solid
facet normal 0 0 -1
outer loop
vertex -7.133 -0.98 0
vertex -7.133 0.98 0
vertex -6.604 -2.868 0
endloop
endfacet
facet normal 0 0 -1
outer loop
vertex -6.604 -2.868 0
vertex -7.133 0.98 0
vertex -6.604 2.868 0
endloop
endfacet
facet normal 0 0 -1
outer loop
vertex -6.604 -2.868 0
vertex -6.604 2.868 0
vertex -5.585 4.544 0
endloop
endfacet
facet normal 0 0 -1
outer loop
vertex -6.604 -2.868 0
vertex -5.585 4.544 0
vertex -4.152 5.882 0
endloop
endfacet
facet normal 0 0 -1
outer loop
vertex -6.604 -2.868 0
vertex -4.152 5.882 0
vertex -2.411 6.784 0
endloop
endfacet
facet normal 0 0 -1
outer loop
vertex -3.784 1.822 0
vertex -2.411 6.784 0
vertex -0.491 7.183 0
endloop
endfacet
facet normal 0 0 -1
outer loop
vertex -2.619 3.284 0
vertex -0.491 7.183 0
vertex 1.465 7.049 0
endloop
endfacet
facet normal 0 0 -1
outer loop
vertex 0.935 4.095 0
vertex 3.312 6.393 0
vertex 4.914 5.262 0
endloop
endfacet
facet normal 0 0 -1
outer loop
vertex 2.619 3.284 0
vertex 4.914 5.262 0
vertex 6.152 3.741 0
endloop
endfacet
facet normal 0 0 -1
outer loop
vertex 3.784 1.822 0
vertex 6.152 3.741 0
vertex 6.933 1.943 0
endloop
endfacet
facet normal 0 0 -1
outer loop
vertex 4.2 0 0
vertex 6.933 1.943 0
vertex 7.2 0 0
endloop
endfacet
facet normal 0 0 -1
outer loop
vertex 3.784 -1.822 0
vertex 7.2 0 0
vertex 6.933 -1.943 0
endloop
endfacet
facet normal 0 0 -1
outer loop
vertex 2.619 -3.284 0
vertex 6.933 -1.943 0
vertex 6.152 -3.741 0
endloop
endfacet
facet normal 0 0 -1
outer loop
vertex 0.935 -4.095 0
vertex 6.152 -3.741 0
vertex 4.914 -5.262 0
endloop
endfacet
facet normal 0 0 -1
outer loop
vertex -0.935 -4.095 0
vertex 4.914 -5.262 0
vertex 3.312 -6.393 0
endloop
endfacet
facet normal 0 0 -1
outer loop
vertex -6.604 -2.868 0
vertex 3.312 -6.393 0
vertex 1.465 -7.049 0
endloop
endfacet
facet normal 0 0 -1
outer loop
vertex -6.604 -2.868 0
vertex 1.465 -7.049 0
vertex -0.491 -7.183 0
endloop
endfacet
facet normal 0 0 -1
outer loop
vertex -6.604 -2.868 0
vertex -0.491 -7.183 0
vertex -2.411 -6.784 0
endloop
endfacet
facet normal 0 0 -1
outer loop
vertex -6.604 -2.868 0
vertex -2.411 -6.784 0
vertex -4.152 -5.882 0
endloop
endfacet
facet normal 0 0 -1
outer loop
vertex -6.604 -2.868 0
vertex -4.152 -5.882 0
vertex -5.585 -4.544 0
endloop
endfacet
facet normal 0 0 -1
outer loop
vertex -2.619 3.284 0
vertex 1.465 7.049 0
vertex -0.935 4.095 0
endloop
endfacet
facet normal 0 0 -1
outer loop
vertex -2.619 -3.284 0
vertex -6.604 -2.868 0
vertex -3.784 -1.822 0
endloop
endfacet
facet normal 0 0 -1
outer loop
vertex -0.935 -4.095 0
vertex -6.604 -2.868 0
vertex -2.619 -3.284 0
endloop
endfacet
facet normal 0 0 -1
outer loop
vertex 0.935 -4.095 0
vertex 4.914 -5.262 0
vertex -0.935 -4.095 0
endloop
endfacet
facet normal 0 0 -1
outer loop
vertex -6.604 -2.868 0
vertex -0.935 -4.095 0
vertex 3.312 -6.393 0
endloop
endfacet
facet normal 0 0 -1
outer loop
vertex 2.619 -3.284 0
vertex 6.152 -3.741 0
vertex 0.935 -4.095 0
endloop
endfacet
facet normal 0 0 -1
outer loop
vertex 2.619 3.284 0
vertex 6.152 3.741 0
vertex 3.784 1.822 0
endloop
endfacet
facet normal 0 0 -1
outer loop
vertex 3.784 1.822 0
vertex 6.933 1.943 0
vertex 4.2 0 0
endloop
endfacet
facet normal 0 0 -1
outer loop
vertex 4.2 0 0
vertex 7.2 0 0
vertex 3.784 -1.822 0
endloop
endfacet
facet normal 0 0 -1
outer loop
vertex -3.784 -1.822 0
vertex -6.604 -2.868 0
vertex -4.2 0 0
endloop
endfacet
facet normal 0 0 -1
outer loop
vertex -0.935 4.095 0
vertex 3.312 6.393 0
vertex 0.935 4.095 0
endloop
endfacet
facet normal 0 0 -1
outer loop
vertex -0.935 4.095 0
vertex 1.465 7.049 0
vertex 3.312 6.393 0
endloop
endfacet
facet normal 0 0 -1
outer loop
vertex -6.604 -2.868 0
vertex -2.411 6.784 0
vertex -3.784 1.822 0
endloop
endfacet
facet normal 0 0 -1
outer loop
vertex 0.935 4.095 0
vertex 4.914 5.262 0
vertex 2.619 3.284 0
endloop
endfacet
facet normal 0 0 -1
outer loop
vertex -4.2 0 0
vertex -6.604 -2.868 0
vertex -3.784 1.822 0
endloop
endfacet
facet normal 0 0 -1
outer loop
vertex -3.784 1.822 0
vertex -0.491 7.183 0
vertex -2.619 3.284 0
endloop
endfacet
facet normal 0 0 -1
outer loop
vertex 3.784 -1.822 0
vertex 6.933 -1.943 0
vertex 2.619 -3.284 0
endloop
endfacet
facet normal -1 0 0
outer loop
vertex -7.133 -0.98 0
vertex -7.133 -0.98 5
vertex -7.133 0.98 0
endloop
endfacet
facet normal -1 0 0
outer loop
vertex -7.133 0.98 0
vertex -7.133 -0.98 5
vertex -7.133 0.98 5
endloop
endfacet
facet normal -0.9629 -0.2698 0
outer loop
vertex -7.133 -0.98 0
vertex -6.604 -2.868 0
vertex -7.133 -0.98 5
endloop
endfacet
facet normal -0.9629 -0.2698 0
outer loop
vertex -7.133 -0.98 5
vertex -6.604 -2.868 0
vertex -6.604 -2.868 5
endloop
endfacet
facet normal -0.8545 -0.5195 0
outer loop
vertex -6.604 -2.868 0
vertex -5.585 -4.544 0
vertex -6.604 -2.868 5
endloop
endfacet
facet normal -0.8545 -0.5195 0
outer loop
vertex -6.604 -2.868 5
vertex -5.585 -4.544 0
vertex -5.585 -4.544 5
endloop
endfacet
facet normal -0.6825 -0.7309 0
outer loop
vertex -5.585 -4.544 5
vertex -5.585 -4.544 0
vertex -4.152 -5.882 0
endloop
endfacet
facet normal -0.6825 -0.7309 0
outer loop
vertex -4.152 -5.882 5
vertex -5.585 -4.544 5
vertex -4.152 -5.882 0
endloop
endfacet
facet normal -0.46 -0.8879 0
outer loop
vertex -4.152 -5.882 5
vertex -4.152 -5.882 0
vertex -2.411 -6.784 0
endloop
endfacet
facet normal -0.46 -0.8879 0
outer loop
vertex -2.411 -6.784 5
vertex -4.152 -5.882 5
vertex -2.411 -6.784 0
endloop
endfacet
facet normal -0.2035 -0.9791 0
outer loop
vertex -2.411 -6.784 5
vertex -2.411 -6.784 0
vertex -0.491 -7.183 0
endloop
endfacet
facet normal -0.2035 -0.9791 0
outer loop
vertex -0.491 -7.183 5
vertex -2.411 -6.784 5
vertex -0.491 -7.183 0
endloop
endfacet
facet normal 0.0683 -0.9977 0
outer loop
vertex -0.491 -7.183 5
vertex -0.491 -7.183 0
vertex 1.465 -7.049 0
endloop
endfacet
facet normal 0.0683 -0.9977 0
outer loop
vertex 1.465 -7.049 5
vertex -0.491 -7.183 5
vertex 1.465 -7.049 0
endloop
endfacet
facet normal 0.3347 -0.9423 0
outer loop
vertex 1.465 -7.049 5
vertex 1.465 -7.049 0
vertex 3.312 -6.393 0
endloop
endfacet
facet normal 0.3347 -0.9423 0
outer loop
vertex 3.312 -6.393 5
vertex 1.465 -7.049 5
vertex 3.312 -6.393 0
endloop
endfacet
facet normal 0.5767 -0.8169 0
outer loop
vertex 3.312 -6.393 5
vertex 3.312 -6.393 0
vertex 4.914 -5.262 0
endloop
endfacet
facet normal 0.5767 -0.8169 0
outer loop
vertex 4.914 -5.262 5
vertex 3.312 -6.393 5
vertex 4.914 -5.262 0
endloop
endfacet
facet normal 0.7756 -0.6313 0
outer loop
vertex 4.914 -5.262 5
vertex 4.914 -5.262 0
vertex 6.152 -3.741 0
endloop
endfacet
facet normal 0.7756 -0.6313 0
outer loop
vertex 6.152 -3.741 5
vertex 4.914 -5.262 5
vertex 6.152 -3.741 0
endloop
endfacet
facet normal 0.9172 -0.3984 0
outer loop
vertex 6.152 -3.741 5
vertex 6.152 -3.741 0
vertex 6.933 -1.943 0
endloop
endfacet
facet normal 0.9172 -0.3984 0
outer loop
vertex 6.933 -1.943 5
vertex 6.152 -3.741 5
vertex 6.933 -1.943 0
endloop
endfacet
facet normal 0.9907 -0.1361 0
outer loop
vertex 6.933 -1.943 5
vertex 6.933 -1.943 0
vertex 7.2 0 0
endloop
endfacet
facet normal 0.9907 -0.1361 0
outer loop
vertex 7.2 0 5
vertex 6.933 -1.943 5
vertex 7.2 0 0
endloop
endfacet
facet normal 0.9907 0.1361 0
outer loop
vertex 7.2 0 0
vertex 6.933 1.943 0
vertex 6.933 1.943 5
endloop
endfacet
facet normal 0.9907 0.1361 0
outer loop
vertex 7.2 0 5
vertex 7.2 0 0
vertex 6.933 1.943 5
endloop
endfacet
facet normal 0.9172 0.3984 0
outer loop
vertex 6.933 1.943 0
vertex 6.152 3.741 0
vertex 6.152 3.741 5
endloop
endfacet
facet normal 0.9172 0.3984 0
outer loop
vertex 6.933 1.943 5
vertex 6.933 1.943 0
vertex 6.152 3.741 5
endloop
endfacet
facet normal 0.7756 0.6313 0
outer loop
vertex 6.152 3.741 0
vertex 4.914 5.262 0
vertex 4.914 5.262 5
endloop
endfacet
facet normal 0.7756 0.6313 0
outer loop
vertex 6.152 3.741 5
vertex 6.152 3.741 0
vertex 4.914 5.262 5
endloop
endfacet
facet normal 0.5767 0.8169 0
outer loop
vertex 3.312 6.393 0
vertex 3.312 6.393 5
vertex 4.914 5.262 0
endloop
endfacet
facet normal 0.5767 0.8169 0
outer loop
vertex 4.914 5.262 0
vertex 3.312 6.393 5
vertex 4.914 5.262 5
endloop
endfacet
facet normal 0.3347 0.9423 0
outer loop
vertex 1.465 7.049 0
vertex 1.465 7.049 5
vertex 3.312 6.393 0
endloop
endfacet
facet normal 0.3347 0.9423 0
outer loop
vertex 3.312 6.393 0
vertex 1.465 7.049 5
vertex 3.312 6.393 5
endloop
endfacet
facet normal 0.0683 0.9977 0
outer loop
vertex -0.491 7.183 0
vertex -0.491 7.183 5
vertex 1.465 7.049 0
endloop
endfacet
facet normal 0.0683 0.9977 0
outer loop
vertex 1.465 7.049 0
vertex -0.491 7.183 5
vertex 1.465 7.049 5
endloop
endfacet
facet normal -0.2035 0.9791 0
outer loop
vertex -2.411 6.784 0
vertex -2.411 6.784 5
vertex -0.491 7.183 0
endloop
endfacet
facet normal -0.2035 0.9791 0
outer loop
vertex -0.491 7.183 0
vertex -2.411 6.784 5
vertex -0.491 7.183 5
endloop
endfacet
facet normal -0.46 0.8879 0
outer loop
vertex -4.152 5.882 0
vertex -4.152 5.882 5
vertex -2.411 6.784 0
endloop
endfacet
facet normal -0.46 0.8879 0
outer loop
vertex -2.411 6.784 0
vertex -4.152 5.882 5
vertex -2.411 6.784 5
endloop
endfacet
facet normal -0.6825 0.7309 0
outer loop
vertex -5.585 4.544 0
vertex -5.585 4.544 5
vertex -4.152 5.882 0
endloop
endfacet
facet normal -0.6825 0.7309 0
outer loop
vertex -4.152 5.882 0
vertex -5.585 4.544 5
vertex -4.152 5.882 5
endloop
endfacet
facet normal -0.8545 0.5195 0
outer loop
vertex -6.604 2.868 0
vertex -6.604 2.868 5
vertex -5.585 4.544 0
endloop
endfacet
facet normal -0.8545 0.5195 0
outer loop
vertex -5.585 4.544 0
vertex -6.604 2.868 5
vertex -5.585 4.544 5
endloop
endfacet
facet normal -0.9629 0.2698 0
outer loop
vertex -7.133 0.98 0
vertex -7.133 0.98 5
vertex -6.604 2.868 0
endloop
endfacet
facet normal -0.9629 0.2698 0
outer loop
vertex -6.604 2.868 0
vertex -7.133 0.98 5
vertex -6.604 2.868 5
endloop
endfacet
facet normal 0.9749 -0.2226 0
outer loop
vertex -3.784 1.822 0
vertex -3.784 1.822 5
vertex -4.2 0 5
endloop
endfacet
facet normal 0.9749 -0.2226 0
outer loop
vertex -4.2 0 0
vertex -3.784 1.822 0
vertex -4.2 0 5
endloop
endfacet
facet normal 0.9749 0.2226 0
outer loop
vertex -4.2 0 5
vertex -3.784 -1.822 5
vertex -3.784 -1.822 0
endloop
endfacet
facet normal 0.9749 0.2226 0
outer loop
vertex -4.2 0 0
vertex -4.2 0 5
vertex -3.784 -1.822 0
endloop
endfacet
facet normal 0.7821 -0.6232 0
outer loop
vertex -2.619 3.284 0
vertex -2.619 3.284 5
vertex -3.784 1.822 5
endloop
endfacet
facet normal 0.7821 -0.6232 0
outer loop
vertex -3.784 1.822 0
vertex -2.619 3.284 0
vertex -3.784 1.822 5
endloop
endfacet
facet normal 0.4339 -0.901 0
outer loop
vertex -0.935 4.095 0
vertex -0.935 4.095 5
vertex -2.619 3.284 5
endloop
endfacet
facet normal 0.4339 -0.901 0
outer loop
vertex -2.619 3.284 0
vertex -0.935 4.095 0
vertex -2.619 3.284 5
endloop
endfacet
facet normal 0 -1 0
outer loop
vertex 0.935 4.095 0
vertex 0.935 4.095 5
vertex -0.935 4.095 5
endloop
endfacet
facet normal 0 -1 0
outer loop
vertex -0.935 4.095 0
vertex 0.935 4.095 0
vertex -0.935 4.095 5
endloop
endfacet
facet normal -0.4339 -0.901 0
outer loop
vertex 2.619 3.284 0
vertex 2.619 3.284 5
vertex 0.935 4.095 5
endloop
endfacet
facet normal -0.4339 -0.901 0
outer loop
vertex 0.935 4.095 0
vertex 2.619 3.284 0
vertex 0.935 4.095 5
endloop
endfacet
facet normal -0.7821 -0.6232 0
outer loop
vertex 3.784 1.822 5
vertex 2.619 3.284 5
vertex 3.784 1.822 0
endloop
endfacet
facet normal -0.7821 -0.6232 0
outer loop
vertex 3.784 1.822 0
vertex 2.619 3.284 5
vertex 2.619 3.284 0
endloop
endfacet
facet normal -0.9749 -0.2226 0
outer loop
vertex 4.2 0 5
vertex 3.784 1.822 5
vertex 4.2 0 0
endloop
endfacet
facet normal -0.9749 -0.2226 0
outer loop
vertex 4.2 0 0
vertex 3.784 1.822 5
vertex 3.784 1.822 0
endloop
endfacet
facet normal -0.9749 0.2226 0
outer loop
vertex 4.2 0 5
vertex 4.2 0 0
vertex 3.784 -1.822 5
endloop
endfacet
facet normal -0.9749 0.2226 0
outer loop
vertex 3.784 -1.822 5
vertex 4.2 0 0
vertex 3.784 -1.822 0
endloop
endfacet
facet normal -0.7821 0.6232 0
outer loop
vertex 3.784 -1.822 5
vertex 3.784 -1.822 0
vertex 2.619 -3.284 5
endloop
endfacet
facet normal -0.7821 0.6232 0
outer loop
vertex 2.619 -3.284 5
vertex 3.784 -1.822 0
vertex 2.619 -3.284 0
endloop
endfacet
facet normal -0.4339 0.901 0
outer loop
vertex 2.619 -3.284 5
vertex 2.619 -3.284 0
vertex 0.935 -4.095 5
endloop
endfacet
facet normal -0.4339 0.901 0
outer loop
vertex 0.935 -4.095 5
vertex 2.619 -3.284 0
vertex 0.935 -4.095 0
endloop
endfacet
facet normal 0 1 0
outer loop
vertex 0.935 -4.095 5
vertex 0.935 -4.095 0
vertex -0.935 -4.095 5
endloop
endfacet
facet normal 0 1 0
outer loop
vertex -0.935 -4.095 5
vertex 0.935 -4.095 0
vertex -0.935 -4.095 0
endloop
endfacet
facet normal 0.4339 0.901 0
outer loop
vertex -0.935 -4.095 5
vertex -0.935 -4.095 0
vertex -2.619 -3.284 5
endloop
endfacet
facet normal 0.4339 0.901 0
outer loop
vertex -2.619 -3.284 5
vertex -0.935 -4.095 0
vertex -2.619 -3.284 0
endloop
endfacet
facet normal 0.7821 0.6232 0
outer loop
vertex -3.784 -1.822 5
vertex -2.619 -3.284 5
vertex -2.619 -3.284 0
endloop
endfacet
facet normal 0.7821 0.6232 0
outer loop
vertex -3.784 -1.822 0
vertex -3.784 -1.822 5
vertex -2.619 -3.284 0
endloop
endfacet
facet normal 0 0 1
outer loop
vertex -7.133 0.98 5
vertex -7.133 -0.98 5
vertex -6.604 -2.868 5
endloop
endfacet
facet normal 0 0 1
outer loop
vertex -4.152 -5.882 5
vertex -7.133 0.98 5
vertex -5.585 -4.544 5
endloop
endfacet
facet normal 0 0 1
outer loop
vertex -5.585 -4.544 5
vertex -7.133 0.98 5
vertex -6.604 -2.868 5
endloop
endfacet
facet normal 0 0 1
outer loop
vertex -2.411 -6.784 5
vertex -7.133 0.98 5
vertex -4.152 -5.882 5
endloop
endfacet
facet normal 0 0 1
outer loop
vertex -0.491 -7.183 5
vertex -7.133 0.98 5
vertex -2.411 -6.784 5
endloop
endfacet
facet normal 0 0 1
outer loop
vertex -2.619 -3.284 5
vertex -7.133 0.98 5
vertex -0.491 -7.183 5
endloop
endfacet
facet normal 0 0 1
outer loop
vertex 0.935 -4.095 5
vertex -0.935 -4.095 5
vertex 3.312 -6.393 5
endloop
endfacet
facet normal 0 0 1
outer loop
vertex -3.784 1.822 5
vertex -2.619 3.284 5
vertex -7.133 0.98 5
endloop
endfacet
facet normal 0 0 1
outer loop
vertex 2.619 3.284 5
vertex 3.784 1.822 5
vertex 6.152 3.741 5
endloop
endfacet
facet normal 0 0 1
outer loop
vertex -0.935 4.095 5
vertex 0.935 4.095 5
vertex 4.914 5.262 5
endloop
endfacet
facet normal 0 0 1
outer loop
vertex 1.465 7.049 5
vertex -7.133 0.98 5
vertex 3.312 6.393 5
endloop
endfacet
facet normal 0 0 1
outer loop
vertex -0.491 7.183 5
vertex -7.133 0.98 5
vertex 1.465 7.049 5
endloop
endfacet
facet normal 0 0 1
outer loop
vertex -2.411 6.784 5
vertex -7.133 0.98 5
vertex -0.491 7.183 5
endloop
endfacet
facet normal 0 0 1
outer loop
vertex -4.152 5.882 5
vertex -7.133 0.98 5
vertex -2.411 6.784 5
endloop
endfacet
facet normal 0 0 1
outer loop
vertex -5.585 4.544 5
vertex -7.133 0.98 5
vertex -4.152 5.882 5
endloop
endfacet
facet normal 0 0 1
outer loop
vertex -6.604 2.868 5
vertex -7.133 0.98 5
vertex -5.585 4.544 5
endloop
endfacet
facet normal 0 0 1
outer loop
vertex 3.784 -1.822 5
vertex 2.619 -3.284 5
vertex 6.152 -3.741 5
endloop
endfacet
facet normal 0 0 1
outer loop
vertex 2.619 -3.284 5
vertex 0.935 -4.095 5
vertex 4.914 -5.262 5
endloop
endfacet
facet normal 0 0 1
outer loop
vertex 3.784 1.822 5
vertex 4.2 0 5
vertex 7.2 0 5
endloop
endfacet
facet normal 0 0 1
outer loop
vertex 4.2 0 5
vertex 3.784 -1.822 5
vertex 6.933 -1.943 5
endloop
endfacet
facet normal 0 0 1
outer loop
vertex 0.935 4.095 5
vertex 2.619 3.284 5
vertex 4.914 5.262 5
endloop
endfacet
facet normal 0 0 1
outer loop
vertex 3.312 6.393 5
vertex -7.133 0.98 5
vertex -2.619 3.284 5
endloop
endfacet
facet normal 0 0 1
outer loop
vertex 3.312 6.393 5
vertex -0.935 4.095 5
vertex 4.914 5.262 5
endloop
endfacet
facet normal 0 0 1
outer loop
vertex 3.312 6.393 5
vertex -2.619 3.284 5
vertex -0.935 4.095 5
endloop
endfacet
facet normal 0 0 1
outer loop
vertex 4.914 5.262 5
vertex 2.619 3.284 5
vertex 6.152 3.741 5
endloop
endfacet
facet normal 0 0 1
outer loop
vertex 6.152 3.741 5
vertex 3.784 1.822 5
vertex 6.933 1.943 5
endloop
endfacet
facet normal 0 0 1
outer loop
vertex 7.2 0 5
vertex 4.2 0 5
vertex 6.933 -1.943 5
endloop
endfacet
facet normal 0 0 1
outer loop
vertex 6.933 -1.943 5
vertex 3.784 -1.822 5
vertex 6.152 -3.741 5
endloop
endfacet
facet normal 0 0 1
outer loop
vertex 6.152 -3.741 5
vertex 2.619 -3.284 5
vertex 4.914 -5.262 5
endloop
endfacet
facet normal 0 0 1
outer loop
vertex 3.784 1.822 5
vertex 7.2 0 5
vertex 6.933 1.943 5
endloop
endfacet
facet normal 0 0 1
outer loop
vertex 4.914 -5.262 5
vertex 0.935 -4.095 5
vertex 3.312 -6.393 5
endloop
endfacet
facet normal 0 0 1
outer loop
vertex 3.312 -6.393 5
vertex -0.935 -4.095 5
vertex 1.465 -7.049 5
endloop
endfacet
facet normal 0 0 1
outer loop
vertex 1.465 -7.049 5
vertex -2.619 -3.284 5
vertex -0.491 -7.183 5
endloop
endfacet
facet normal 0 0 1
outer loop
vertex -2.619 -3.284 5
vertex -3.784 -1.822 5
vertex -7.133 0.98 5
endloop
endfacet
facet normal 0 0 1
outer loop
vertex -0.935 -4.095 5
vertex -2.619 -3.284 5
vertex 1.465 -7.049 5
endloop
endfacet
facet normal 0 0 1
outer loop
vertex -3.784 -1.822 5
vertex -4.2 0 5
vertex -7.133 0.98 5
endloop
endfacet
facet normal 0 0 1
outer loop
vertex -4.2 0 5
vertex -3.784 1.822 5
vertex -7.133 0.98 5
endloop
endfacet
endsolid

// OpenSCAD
height = 5;
bore_radius = 4.2;
outer_radius = bore_radius + 3;
tolerance = 0.01;

spacer();

module spacer(h = height, or = outer_radius, br = bore_radius, o = tolerance) {
	difference() {
		cylinder(r = or, h = h);
		translate([0, 0, -o])
			cylinder(r = br, h = h + o * 2);
	}
}
